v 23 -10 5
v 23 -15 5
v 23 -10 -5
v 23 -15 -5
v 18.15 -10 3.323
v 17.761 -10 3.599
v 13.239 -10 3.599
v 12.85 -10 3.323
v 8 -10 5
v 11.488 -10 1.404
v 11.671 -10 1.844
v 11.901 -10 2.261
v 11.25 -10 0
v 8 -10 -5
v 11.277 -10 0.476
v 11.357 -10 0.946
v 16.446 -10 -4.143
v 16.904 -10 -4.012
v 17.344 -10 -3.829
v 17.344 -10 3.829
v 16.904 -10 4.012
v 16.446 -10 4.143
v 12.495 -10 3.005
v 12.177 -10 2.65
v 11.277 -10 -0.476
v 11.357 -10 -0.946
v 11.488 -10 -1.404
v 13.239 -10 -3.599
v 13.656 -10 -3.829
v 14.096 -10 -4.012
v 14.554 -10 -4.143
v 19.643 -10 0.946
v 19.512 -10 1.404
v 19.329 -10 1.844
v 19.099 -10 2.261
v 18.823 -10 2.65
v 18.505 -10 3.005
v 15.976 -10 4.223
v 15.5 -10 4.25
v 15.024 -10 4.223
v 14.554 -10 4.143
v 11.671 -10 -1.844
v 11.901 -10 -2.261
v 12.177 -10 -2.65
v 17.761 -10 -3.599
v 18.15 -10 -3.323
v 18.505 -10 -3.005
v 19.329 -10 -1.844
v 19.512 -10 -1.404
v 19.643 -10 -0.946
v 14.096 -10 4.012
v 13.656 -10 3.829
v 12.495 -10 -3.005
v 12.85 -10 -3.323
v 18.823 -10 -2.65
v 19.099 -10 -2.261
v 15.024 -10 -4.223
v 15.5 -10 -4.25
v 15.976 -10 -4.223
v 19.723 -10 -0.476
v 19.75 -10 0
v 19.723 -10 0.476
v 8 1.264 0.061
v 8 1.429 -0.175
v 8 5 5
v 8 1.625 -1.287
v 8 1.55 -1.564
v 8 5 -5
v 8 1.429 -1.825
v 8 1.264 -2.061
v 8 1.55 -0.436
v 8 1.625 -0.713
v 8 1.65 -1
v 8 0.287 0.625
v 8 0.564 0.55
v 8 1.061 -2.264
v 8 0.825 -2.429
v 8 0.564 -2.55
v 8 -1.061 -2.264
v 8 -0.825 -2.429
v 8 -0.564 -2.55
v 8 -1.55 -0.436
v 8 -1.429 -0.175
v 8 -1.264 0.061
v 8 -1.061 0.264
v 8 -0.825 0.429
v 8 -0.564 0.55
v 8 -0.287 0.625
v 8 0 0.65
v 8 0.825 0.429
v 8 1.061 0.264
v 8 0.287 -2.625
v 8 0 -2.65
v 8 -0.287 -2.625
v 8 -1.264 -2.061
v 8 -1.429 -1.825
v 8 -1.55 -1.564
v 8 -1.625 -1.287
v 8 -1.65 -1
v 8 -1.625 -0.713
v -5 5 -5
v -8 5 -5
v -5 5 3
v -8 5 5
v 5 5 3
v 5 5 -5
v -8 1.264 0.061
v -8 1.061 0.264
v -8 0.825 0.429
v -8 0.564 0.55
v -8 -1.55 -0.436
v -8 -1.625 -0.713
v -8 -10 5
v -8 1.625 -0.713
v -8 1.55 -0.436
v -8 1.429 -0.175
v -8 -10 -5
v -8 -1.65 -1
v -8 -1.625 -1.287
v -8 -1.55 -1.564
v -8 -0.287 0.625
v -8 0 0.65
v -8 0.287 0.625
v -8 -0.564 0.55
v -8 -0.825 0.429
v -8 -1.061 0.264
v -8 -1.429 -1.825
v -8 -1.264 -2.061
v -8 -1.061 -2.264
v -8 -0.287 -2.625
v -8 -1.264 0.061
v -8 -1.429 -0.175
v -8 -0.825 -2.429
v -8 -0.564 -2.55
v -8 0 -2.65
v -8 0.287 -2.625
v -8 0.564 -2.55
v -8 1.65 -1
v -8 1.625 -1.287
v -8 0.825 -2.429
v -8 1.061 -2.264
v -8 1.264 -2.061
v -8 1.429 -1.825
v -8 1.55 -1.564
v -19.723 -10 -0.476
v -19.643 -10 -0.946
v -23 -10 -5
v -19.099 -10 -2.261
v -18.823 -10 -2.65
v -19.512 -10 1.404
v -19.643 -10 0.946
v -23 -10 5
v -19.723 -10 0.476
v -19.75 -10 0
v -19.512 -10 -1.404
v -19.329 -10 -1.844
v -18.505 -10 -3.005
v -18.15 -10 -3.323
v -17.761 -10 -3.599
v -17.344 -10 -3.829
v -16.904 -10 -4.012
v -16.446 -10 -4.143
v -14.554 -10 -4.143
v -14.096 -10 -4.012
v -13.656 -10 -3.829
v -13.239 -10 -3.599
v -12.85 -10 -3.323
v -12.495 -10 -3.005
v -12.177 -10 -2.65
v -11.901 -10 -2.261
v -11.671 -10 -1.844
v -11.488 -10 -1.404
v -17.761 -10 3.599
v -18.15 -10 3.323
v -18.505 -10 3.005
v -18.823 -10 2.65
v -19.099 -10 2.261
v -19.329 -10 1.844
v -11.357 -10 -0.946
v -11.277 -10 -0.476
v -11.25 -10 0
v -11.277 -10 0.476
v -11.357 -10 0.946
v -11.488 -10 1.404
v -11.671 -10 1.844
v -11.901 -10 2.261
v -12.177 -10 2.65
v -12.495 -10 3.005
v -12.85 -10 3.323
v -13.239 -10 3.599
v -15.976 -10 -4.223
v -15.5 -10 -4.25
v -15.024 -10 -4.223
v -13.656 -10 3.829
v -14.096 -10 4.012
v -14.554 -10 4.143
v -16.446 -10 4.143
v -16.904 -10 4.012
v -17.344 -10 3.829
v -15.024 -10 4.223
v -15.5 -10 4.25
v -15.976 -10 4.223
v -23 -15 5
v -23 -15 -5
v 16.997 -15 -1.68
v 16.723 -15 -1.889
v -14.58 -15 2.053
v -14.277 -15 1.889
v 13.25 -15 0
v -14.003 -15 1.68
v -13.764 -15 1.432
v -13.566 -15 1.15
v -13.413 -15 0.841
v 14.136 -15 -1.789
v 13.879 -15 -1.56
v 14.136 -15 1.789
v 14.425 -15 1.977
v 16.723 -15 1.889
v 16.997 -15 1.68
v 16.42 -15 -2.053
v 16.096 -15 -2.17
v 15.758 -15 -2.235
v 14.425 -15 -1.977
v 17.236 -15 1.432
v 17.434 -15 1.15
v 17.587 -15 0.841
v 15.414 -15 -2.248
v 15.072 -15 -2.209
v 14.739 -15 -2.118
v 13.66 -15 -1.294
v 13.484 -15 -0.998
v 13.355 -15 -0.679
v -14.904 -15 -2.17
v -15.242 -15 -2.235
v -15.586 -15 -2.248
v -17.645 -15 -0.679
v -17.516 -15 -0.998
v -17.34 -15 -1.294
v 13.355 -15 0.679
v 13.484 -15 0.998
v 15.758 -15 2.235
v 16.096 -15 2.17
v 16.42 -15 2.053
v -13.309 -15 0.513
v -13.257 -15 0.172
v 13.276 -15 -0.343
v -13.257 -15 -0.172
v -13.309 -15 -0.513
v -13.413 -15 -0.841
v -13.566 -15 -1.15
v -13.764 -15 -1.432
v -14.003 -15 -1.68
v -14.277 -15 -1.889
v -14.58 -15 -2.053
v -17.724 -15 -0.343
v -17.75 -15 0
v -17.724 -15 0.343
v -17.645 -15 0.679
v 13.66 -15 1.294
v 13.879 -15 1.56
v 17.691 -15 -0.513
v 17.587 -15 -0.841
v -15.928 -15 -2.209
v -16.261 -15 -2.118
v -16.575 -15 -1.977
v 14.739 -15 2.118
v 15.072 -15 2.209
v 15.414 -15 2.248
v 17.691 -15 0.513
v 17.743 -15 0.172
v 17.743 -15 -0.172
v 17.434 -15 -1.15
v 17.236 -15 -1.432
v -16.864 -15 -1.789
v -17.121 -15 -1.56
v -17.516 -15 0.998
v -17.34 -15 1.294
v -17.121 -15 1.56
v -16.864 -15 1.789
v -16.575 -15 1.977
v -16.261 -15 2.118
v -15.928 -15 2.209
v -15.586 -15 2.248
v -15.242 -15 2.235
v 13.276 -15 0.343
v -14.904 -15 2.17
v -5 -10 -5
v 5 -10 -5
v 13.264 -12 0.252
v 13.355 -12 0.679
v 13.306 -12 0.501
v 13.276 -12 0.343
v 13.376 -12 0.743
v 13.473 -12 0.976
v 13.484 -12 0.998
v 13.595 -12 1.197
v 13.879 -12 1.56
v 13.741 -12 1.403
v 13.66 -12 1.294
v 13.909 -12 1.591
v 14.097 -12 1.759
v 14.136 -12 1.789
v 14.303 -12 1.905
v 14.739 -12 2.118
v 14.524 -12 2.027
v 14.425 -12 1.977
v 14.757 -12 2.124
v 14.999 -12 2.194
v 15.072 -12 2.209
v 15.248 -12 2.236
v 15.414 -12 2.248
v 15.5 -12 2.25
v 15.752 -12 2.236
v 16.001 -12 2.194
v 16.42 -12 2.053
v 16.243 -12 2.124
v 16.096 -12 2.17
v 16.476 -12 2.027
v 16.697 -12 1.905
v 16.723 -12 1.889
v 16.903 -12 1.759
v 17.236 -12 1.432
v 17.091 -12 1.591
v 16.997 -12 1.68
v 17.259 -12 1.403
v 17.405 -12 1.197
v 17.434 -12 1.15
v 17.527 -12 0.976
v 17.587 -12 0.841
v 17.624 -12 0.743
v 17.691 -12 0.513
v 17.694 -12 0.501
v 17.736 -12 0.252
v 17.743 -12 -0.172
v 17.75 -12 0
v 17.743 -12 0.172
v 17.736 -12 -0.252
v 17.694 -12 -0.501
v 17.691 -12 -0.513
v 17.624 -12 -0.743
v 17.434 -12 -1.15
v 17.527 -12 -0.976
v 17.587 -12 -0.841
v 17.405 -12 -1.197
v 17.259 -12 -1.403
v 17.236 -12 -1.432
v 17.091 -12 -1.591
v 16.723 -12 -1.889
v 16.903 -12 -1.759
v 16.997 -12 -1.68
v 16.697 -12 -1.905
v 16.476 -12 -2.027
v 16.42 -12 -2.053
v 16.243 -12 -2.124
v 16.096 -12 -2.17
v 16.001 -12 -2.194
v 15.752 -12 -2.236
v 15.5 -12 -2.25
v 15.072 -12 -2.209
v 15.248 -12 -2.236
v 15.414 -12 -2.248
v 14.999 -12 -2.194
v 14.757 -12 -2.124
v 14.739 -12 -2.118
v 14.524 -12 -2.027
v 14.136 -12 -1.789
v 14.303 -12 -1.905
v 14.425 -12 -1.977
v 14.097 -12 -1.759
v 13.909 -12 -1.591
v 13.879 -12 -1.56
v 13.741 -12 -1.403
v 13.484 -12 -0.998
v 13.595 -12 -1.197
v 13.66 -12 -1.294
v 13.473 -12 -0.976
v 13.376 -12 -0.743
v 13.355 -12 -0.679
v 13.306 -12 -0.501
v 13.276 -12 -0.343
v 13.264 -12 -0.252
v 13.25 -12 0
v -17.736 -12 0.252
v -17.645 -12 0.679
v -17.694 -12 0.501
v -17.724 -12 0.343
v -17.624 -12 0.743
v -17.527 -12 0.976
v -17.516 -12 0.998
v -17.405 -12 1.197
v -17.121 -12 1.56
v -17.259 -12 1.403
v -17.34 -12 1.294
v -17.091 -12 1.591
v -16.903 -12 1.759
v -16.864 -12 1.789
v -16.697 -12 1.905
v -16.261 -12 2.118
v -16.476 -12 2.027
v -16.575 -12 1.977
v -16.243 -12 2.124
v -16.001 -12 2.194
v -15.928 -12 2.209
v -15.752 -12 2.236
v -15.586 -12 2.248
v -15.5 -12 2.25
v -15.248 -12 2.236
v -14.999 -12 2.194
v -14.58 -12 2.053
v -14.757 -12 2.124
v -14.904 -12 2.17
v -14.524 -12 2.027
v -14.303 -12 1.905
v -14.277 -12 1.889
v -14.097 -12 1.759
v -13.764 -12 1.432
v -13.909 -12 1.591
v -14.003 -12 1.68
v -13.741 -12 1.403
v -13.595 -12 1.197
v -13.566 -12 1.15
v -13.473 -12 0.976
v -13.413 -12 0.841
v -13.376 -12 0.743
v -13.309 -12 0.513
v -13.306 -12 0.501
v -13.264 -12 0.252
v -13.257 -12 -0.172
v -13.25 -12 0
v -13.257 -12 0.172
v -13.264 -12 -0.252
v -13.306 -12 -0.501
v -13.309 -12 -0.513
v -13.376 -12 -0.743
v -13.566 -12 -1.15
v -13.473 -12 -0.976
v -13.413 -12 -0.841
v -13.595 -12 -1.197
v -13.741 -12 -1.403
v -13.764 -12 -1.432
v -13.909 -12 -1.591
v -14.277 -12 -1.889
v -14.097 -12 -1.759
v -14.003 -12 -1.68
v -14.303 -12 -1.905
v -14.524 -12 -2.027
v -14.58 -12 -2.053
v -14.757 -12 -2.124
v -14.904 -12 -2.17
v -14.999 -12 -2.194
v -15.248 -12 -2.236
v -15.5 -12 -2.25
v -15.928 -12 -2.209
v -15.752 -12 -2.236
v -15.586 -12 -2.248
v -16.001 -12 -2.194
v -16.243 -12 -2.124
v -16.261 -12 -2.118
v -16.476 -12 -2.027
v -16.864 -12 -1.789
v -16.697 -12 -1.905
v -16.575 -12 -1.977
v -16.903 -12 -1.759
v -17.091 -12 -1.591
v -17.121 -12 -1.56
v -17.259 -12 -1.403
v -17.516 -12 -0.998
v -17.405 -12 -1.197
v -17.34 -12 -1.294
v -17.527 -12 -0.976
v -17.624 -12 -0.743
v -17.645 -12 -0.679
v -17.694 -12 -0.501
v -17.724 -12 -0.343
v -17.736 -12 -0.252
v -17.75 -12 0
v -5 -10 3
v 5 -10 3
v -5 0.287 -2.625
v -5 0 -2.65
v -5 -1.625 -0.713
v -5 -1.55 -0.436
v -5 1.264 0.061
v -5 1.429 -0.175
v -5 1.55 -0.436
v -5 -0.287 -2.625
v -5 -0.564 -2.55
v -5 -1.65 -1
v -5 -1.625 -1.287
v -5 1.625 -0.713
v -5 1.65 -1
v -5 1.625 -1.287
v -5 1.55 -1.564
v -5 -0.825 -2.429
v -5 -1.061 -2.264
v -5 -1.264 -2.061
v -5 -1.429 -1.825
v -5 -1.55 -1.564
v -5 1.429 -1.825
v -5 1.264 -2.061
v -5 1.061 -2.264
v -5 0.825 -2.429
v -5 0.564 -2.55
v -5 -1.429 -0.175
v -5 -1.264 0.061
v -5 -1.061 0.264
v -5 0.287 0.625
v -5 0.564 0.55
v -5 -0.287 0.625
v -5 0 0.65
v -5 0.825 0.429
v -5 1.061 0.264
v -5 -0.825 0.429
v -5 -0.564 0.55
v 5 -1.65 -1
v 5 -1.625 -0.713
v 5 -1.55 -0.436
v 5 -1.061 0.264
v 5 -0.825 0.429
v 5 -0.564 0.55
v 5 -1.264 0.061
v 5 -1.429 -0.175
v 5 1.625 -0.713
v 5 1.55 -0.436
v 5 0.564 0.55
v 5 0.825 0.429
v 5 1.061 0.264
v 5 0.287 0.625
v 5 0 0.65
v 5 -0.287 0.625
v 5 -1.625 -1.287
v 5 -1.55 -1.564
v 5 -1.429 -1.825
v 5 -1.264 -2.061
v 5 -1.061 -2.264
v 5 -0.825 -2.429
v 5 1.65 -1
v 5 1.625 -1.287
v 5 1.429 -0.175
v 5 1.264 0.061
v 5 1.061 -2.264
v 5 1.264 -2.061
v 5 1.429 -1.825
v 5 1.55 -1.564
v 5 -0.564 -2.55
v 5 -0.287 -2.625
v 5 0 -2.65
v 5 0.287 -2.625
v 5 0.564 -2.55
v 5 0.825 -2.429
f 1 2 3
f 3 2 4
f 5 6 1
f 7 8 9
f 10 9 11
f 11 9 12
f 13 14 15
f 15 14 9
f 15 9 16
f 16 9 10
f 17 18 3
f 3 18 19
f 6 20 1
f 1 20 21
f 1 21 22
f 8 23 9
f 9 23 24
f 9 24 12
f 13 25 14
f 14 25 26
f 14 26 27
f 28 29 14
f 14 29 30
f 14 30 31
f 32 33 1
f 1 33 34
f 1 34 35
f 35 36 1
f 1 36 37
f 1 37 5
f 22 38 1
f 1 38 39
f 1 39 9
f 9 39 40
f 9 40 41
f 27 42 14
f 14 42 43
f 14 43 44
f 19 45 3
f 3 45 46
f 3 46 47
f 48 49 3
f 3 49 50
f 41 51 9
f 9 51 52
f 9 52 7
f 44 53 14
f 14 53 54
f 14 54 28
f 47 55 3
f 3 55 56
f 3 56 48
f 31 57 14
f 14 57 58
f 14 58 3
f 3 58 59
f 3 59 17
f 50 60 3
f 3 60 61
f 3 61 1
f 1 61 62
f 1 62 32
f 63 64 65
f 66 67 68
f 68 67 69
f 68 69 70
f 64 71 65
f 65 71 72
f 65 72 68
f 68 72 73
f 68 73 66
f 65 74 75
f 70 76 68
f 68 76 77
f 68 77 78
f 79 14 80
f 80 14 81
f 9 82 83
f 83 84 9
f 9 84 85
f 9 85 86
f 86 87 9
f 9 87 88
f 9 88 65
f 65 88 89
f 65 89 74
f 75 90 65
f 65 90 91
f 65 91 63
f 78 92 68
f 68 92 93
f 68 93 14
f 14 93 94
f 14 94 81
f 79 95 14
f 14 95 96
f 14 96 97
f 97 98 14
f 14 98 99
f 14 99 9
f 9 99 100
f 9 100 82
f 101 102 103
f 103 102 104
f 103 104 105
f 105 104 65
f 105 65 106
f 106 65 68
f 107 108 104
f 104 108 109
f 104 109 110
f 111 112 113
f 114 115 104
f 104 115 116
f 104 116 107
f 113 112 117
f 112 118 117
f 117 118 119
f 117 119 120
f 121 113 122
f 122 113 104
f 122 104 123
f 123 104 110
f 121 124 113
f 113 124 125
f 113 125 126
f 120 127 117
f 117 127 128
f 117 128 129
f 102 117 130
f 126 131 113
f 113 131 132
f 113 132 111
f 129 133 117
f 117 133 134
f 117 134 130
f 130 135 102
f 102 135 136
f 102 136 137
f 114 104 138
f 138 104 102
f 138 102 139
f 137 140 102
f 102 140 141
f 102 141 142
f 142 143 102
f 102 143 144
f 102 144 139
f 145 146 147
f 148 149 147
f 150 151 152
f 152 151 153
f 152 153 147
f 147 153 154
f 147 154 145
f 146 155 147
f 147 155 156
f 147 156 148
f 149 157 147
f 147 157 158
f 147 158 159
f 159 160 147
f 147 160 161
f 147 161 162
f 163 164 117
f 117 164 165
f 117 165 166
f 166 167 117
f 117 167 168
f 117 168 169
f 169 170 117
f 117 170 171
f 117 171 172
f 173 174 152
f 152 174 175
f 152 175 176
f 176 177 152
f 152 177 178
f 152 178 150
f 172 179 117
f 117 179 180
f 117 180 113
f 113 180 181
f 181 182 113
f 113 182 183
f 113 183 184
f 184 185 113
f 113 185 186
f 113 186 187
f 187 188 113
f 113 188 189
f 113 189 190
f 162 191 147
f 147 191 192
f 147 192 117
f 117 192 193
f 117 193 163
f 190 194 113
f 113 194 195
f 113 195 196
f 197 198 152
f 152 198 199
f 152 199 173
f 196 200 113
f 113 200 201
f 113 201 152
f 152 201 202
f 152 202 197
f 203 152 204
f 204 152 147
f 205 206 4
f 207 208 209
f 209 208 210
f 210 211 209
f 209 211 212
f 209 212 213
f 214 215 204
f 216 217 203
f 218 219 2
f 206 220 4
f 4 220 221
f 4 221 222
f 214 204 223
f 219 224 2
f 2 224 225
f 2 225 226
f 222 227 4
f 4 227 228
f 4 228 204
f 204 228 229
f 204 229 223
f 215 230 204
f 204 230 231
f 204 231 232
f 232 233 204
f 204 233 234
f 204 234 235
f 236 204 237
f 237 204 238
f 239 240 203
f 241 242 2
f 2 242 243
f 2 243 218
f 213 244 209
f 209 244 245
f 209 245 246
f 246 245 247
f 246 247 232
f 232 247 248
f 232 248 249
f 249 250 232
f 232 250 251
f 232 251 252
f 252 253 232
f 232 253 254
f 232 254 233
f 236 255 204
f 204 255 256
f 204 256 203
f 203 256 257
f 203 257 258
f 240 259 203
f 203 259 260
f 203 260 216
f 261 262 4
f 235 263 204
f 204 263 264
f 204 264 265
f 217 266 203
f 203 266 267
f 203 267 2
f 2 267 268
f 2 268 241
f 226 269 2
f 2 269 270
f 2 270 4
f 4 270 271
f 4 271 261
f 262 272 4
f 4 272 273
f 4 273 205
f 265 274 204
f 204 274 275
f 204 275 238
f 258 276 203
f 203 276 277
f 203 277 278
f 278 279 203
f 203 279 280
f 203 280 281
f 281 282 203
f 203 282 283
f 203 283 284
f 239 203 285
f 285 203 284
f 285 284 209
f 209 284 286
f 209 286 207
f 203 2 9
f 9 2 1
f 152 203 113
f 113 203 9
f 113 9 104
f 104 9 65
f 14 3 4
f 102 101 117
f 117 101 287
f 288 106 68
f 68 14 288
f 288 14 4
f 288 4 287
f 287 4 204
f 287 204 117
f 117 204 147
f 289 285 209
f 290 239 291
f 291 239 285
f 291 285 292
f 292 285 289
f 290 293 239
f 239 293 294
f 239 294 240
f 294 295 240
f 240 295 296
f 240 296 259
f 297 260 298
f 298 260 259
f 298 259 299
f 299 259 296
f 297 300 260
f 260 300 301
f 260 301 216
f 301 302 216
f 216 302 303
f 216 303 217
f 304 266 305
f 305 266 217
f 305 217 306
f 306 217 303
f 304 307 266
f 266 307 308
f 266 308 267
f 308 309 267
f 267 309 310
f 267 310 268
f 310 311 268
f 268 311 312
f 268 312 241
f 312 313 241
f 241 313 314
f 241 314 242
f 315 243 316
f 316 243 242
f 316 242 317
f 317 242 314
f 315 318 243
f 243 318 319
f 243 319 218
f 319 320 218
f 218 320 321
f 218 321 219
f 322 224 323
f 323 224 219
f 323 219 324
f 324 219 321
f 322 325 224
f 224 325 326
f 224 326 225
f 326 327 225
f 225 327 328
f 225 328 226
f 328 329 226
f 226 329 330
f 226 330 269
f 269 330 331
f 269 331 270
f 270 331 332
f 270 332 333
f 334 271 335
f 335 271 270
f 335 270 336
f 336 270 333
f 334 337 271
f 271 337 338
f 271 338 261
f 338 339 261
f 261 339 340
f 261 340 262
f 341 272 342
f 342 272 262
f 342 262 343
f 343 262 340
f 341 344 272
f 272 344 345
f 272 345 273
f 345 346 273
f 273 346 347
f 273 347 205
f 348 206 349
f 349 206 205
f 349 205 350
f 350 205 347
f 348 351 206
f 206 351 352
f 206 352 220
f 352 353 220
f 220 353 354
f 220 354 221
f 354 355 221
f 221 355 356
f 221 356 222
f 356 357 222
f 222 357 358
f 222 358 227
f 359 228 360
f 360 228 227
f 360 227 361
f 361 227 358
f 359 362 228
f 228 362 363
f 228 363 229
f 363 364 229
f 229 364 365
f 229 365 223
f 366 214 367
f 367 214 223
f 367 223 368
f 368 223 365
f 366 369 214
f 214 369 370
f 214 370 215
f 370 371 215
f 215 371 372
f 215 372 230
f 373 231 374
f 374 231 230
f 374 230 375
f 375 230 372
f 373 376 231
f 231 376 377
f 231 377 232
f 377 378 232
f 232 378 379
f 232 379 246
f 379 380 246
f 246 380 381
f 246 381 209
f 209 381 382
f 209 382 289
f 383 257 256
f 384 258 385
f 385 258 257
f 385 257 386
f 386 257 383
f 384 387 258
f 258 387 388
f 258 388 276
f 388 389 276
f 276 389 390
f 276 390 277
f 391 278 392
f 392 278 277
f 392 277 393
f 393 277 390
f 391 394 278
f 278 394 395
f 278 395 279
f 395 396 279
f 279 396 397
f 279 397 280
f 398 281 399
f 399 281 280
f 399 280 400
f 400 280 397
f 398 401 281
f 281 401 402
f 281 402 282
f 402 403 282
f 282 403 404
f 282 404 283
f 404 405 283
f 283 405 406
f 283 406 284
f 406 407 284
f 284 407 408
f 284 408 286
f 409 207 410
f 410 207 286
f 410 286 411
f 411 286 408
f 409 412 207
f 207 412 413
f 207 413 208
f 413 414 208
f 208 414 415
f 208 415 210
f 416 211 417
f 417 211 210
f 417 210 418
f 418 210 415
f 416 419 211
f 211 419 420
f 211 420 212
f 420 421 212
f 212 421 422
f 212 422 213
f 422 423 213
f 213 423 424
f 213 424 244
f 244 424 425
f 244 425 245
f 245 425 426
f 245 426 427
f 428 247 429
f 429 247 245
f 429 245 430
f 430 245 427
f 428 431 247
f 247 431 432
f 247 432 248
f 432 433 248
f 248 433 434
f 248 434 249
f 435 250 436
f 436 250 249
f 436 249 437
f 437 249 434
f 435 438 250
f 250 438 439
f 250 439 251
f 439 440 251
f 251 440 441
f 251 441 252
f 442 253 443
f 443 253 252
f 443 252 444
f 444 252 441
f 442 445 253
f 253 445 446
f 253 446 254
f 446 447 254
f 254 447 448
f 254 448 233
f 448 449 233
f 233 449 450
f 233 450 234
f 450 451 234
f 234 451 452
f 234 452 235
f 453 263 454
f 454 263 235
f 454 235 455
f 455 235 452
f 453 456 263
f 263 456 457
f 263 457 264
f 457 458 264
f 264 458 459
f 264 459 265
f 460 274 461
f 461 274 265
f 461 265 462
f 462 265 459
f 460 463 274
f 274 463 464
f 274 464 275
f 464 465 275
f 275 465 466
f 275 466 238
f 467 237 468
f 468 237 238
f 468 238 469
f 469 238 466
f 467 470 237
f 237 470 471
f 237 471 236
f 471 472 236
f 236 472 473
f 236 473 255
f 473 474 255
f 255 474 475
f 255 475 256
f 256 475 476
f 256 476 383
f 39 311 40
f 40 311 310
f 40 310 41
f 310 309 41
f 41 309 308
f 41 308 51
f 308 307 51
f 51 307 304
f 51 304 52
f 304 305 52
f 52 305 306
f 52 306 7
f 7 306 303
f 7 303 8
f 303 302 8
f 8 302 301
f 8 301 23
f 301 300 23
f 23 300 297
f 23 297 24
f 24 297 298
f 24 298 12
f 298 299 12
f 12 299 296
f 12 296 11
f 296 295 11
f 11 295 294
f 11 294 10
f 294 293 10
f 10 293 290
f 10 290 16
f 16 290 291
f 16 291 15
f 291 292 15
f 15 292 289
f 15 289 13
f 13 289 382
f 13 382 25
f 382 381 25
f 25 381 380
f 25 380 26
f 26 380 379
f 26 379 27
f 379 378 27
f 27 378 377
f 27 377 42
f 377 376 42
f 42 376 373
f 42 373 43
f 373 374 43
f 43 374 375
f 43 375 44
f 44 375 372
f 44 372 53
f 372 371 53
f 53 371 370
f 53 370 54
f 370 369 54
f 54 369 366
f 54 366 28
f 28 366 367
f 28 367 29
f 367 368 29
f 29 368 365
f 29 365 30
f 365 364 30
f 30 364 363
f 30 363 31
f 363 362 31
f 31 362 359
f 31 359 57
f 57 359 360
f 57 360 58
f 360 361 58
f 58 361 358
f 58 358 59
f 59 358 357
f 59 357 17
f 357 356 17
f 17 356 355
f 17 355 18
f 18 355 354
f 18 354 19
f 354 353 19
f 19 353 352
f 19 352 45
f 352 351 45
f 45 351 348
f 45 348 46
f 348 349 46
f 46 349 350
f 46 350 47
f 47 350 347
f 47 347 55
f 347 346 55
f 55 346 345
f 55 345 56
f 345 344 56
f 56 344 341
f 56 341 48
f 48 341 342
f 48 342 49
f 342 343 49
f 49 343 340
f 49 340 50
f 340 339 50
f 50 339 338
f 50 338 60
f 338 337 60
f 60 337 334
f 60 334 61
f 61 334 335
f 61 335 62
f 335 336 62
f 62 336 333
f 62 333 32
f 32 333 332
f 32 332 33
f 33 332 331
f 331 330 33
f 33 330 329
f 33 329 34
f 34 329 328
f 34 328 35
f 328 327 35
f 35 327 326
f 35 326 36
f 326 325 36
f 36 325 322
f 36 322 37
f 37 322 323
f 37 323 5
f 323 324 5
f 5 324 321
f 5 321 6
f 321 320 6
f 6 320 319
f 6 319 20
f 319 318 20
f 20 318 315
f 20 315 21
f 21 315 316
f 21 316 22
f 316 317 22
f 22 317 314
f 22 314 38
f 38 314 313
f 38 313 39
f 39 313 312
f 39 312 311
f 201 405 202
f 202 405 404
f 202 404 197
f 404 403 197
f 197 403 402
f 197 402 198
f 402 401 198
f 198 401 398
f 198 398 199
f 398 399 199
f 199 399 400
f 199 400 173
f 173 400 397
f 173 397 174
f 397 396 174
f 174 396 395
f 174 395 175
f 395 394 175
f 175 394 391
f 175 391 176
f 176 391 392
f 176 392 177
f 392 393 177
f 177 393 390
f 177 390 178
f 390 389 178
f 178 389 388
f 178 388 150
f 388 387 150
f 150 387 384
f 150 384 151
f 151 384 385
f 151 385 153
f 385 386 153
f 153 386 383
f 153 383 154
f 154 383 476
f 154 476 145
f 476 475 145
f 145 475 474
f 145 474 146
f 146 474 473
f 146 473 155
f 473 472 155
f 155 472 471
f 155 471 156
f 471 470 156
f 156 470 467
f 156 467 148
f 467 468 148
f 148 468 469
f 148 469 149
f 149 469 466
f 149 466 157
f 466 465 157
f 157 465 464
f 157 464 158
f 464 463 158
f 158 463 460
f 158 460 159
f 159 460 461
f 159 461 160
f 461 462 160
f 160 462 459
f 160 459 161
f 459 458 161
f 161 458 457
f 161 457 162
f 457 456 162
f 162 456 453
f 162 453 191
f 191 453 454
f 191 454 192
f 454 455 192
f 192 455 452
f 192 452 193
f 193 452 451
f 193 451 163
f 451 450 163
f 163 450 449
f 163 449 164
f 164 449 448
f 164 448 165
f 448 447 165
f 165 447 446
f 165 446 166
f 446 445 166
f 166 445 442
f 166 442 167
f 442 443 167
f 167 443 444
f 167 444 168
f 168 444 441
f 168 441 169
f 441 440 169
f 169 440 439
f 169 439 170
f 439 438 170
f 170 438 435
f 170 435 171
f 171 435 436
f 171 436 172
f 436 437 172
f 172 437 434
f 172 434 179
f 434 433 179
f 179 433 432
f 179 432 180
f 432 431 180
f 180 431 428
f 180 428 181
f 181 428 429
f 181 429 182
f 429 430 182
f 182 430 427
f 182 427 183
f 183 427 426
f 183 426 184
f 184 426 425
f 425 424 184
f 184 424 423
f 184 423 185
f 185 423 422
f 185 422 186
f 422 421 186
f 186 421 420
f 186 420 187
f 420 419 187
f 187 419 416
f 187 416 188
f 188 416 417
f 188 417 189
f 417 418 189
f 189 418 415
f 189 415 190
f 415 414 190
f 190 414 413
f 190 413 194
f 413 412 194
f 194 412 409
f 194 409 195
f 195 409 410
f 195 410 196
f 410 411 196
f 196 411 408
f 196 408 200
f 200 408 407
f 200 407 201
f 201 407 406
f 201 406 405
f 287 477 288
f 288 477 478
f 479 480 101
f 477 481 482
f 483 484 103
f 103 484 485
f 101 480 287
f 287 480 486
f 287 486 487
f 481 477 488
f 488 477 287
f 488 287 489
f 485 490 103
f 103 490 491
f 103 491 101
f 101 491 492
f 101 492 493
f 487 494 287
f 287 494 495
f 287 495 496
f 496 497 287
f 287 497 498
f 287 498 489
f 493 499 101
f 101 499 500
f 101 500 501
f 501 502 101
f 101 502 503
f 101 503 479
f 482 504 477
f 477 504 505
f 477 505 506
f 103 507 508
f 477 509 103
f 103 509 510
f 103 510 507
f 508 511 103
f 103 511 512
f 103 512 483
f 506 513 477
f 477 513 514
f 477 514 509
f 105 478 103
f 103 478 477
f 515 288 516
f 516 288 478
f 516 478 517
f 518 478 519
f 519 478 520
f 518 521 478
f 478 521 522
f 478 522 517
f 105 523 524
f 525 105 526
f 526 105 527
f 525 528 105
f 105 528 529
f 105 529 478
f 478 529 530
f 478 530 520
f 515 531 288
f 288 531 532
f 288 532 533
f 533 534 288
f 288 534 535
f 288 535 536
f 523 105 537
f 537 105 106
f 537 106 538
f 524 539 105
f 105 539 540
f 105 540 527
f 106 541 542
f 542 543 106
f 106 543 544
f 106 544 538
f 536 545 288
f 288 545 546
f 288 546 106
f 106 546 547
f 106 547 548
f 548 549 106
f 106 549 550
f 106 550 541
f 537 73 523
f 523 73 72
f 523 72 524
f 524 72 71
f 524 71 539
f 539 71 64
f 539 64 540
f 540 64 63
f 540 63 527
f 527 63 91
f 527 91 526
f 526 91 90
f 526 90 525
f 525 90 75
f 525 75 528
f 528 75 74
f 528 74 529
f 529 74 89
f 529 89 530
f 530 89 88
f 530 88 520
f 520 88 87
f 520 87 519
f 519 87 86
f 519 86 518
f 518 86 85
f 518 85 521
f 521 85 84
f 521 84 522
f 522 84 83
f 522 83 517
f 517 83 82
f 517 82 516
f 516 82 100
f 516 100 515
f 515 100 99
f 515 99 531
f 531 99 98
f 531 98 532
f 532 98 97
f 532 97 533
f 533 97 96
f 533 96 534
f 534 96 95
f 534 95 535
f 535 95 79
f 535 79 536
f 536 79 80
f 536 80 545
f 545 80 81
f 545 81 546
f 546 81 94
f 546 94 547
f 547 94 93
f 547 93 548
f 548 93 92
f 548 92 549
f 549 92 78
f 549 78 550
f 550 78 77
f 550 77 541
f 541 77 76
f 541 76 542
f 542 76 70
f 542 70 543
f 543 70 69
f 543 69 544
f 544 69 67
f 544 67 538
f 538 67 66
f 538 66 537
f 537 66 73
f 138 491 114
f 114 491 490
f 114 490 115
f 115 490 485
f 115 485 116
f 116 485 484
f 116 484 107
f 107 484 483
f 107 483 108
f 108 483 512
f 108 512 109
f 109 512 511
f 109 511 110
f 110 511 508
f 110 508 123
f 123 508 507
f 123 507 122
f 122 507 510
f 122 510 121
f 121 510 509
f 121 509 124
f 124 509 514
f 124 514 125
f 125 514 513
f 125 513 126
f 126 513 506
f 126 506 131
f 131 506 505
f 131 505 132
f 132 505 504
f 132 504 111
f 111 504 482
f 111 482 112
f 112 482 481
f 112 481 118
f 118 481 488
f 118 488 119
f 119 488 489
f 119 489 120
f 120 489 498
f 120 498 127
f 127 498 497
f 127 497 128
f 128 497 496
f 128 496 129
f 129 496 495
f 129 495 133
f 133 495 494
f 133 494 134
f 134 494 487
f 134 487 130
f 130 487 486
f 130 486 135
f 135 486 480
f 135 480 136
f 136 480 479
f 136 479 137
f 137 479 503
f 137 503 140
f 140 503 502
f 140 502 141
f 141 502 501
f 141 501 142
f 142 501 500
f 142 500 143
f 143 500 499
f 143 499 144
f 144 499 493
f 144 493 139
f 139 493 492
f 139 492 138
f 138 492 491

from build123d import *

# Parameters (mm, degrees)
BOSS_EXTRUDE1_DEPTH = 5
SKETCH2_R           = 2.25
CUT_EXTRUDE1_DEPTH  = 28.910571474
CHAMFER1_SIZE       = 2
SKETCH4_W           = 10
SKETCH4_H           = 8
CUT_EXTRUDE3_DEPTH  = 15
SKETCH3_R           = 1.65
CUT_EXTRUDE2_DEPTH  = 35.799425283


with BuildPart() as part:
    # Sketch1 → Boss-Extrude1 (new, symmetric)
    with BuildSketch(Plane.XY):
        Polygon((-23, -15), (23, -15), (23, -10), (8, -10), (8, 5), (-8, 5), (-8, -10), (-23, -10), align=None)
    extrude(amount=BOSS_EXTRUDE1_DEPTH, both=True)

    # Sketch2 → Cut-Extrude1 (cut, through all)
    with BuildSketch(Plane(origin=(0, -10, 0), x_dir=(1, 0, 0), z_dir=(0, 1, 0))):
        with Locations(Location((-15.5, 0, 0), (0, 0, 180))):
            Circle(SKETCH2_R)
        with Locations(Location((15.5, 0, 0), (0, 0, 180))):
            Circle(SKETCH2_R)
    extrude(amount=-CUT_EXTRUDE1_DEPTH, mode=Mode.SUBTRACT)

    # Chamfer1
    chamfer1_edges = [part.edges().sort_by_distance(p)[0] for p in [
        (-13.25, -10, 0),
        (17.75, -10, 0),
    ]]
    chamfer(chamfer1_edges, length=CHAMFER1_SIZE)

    # Sketch4 → Cut-Extrude3 (cut)
    with BuildSketch(Plane(origin=(0, 5, 0), x_dir=(1, 0, 0), z_dir=(0, 1, 0))):
        with Locations((0, 1)):
            Rectangle(SKETCH4_W, SKETCH4_H)
    extrude(amount=-CUT_EXTRUDE3_DEPTH, mode=Mode.SUBTRACT)

    # Sketch3 → Cut-Extrude2 (cut, through all)
    with BuildSketch(Plane(origin=(8, 0, 0), x_dir=(0, 0, -1), z_dir=(1, 0, 0))):
        with Locations(Location((1, 0, 0), (0, 0, 90))):
            Circle(SKETCH3_R)
    extrude(amount=-CUT_EXTRUDE2_DEPTH, mode=Mode.SUBTRACT)


solid = part.part
